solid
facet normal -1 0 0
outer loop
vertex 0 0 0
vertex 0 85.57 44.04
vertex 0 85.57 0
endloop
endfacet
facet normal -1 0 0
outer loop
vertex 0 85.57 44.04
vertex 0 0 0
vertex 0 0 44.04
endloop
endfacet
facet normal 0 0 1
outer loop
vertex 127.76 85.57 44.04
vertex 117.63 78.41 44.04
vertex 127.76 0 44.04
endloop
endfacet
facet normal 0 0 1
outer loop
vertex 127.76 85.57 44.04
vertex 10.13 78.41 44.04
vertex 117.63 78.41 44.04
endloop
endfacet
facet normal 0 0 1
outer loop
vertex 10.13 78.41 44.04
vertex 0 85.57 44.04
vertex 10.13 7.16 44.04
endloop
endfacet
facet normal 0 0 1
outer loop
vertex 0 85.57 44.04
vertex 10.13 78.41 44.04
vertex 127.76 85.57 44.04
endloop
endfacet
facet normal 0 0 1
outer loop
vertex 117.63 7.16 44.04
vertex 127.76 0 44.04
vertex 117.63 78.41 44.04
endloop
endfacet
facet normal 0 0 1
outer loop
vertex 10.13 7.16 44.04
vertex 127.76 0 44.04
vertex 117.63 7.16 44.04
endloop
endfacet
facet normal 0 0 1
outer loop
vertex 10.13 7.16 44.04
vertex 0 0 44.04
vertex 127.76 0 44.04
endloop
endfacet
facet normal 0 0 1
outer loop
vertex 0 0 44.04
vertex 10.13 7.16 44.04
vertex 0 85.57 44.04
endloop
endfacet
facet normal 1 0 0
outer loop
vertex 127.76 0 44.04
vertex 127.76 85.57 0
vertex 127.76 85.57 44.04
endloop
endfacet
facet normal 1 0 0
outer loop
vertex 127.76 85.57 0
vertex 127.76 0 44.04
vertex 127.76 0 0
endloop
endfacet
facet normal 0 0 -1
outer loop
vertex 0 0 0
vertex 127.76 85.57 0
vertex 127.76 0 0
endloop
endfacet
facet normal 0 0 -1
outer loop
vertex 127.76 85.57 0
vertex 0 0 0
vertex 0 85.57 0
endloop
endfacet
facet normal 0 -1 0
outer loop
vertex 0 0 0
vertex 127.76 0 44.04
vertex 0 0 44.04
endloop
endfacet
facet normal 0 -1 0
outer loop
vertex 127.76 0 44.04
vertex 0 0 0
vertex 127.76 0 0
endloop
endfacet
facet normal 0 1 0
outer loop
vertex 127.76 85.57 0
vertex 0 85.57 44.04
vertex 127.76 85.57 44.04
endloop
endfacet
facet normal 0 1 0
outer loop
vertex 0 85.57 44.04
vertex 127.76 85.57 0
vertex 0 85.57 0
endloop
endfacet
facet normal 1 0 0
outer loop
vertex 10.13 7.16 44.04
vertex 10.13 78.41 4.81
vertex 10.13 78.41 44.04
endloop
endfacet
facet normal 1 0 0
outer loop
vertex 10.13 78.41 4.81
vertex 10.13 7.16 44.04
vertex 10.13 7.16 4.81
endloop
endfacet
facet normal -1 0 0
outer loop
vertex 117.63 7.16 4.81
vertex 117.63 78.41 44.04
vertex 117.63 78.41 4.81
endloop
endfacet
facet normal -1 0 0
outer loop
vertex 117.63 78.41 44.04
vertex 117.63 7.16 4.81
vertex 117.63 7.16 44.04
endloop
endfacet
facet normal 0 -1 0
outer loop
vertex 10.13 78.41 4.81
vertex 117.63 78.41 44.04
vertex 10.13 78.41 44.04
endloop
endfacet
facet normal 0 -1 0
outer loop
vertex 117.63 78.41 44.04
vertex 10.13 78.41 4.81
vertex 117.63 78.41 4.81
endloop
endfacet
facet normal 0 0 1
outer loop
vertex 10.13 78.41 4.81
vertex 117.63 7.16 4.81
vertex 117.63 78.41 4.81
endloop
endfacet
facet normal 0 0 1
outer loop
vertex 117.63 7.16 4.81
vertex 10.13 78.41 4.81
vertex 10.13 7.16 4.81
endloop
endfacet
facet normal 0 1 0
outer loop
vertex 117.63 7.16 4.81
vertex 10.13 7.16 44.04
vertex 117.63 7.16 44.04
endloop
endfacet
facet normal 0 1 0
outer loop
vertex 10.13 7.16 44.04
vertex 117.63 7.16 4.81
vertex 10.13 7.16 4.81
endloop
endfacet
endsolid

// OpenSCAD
// Agilent 1 Well Reservoir 290 mL
// loadName: agilent_1_reservoir_290ml
// Auto-generated by labware_to_stl.py from Opentrons V2 labware definition

$fn = 64;

difference() {
    // ── Labware body ──────────────────────────────────────────────
    cube([127.7600, 85.5700, 44.0400]);

    // ── Well cutouts ──────────────────────────────────────────────
    // Well A1
    translate([10.1300, 7.1600, 4.8100])
        cube([107.5000, 71.2500, 40.2300]);
}
